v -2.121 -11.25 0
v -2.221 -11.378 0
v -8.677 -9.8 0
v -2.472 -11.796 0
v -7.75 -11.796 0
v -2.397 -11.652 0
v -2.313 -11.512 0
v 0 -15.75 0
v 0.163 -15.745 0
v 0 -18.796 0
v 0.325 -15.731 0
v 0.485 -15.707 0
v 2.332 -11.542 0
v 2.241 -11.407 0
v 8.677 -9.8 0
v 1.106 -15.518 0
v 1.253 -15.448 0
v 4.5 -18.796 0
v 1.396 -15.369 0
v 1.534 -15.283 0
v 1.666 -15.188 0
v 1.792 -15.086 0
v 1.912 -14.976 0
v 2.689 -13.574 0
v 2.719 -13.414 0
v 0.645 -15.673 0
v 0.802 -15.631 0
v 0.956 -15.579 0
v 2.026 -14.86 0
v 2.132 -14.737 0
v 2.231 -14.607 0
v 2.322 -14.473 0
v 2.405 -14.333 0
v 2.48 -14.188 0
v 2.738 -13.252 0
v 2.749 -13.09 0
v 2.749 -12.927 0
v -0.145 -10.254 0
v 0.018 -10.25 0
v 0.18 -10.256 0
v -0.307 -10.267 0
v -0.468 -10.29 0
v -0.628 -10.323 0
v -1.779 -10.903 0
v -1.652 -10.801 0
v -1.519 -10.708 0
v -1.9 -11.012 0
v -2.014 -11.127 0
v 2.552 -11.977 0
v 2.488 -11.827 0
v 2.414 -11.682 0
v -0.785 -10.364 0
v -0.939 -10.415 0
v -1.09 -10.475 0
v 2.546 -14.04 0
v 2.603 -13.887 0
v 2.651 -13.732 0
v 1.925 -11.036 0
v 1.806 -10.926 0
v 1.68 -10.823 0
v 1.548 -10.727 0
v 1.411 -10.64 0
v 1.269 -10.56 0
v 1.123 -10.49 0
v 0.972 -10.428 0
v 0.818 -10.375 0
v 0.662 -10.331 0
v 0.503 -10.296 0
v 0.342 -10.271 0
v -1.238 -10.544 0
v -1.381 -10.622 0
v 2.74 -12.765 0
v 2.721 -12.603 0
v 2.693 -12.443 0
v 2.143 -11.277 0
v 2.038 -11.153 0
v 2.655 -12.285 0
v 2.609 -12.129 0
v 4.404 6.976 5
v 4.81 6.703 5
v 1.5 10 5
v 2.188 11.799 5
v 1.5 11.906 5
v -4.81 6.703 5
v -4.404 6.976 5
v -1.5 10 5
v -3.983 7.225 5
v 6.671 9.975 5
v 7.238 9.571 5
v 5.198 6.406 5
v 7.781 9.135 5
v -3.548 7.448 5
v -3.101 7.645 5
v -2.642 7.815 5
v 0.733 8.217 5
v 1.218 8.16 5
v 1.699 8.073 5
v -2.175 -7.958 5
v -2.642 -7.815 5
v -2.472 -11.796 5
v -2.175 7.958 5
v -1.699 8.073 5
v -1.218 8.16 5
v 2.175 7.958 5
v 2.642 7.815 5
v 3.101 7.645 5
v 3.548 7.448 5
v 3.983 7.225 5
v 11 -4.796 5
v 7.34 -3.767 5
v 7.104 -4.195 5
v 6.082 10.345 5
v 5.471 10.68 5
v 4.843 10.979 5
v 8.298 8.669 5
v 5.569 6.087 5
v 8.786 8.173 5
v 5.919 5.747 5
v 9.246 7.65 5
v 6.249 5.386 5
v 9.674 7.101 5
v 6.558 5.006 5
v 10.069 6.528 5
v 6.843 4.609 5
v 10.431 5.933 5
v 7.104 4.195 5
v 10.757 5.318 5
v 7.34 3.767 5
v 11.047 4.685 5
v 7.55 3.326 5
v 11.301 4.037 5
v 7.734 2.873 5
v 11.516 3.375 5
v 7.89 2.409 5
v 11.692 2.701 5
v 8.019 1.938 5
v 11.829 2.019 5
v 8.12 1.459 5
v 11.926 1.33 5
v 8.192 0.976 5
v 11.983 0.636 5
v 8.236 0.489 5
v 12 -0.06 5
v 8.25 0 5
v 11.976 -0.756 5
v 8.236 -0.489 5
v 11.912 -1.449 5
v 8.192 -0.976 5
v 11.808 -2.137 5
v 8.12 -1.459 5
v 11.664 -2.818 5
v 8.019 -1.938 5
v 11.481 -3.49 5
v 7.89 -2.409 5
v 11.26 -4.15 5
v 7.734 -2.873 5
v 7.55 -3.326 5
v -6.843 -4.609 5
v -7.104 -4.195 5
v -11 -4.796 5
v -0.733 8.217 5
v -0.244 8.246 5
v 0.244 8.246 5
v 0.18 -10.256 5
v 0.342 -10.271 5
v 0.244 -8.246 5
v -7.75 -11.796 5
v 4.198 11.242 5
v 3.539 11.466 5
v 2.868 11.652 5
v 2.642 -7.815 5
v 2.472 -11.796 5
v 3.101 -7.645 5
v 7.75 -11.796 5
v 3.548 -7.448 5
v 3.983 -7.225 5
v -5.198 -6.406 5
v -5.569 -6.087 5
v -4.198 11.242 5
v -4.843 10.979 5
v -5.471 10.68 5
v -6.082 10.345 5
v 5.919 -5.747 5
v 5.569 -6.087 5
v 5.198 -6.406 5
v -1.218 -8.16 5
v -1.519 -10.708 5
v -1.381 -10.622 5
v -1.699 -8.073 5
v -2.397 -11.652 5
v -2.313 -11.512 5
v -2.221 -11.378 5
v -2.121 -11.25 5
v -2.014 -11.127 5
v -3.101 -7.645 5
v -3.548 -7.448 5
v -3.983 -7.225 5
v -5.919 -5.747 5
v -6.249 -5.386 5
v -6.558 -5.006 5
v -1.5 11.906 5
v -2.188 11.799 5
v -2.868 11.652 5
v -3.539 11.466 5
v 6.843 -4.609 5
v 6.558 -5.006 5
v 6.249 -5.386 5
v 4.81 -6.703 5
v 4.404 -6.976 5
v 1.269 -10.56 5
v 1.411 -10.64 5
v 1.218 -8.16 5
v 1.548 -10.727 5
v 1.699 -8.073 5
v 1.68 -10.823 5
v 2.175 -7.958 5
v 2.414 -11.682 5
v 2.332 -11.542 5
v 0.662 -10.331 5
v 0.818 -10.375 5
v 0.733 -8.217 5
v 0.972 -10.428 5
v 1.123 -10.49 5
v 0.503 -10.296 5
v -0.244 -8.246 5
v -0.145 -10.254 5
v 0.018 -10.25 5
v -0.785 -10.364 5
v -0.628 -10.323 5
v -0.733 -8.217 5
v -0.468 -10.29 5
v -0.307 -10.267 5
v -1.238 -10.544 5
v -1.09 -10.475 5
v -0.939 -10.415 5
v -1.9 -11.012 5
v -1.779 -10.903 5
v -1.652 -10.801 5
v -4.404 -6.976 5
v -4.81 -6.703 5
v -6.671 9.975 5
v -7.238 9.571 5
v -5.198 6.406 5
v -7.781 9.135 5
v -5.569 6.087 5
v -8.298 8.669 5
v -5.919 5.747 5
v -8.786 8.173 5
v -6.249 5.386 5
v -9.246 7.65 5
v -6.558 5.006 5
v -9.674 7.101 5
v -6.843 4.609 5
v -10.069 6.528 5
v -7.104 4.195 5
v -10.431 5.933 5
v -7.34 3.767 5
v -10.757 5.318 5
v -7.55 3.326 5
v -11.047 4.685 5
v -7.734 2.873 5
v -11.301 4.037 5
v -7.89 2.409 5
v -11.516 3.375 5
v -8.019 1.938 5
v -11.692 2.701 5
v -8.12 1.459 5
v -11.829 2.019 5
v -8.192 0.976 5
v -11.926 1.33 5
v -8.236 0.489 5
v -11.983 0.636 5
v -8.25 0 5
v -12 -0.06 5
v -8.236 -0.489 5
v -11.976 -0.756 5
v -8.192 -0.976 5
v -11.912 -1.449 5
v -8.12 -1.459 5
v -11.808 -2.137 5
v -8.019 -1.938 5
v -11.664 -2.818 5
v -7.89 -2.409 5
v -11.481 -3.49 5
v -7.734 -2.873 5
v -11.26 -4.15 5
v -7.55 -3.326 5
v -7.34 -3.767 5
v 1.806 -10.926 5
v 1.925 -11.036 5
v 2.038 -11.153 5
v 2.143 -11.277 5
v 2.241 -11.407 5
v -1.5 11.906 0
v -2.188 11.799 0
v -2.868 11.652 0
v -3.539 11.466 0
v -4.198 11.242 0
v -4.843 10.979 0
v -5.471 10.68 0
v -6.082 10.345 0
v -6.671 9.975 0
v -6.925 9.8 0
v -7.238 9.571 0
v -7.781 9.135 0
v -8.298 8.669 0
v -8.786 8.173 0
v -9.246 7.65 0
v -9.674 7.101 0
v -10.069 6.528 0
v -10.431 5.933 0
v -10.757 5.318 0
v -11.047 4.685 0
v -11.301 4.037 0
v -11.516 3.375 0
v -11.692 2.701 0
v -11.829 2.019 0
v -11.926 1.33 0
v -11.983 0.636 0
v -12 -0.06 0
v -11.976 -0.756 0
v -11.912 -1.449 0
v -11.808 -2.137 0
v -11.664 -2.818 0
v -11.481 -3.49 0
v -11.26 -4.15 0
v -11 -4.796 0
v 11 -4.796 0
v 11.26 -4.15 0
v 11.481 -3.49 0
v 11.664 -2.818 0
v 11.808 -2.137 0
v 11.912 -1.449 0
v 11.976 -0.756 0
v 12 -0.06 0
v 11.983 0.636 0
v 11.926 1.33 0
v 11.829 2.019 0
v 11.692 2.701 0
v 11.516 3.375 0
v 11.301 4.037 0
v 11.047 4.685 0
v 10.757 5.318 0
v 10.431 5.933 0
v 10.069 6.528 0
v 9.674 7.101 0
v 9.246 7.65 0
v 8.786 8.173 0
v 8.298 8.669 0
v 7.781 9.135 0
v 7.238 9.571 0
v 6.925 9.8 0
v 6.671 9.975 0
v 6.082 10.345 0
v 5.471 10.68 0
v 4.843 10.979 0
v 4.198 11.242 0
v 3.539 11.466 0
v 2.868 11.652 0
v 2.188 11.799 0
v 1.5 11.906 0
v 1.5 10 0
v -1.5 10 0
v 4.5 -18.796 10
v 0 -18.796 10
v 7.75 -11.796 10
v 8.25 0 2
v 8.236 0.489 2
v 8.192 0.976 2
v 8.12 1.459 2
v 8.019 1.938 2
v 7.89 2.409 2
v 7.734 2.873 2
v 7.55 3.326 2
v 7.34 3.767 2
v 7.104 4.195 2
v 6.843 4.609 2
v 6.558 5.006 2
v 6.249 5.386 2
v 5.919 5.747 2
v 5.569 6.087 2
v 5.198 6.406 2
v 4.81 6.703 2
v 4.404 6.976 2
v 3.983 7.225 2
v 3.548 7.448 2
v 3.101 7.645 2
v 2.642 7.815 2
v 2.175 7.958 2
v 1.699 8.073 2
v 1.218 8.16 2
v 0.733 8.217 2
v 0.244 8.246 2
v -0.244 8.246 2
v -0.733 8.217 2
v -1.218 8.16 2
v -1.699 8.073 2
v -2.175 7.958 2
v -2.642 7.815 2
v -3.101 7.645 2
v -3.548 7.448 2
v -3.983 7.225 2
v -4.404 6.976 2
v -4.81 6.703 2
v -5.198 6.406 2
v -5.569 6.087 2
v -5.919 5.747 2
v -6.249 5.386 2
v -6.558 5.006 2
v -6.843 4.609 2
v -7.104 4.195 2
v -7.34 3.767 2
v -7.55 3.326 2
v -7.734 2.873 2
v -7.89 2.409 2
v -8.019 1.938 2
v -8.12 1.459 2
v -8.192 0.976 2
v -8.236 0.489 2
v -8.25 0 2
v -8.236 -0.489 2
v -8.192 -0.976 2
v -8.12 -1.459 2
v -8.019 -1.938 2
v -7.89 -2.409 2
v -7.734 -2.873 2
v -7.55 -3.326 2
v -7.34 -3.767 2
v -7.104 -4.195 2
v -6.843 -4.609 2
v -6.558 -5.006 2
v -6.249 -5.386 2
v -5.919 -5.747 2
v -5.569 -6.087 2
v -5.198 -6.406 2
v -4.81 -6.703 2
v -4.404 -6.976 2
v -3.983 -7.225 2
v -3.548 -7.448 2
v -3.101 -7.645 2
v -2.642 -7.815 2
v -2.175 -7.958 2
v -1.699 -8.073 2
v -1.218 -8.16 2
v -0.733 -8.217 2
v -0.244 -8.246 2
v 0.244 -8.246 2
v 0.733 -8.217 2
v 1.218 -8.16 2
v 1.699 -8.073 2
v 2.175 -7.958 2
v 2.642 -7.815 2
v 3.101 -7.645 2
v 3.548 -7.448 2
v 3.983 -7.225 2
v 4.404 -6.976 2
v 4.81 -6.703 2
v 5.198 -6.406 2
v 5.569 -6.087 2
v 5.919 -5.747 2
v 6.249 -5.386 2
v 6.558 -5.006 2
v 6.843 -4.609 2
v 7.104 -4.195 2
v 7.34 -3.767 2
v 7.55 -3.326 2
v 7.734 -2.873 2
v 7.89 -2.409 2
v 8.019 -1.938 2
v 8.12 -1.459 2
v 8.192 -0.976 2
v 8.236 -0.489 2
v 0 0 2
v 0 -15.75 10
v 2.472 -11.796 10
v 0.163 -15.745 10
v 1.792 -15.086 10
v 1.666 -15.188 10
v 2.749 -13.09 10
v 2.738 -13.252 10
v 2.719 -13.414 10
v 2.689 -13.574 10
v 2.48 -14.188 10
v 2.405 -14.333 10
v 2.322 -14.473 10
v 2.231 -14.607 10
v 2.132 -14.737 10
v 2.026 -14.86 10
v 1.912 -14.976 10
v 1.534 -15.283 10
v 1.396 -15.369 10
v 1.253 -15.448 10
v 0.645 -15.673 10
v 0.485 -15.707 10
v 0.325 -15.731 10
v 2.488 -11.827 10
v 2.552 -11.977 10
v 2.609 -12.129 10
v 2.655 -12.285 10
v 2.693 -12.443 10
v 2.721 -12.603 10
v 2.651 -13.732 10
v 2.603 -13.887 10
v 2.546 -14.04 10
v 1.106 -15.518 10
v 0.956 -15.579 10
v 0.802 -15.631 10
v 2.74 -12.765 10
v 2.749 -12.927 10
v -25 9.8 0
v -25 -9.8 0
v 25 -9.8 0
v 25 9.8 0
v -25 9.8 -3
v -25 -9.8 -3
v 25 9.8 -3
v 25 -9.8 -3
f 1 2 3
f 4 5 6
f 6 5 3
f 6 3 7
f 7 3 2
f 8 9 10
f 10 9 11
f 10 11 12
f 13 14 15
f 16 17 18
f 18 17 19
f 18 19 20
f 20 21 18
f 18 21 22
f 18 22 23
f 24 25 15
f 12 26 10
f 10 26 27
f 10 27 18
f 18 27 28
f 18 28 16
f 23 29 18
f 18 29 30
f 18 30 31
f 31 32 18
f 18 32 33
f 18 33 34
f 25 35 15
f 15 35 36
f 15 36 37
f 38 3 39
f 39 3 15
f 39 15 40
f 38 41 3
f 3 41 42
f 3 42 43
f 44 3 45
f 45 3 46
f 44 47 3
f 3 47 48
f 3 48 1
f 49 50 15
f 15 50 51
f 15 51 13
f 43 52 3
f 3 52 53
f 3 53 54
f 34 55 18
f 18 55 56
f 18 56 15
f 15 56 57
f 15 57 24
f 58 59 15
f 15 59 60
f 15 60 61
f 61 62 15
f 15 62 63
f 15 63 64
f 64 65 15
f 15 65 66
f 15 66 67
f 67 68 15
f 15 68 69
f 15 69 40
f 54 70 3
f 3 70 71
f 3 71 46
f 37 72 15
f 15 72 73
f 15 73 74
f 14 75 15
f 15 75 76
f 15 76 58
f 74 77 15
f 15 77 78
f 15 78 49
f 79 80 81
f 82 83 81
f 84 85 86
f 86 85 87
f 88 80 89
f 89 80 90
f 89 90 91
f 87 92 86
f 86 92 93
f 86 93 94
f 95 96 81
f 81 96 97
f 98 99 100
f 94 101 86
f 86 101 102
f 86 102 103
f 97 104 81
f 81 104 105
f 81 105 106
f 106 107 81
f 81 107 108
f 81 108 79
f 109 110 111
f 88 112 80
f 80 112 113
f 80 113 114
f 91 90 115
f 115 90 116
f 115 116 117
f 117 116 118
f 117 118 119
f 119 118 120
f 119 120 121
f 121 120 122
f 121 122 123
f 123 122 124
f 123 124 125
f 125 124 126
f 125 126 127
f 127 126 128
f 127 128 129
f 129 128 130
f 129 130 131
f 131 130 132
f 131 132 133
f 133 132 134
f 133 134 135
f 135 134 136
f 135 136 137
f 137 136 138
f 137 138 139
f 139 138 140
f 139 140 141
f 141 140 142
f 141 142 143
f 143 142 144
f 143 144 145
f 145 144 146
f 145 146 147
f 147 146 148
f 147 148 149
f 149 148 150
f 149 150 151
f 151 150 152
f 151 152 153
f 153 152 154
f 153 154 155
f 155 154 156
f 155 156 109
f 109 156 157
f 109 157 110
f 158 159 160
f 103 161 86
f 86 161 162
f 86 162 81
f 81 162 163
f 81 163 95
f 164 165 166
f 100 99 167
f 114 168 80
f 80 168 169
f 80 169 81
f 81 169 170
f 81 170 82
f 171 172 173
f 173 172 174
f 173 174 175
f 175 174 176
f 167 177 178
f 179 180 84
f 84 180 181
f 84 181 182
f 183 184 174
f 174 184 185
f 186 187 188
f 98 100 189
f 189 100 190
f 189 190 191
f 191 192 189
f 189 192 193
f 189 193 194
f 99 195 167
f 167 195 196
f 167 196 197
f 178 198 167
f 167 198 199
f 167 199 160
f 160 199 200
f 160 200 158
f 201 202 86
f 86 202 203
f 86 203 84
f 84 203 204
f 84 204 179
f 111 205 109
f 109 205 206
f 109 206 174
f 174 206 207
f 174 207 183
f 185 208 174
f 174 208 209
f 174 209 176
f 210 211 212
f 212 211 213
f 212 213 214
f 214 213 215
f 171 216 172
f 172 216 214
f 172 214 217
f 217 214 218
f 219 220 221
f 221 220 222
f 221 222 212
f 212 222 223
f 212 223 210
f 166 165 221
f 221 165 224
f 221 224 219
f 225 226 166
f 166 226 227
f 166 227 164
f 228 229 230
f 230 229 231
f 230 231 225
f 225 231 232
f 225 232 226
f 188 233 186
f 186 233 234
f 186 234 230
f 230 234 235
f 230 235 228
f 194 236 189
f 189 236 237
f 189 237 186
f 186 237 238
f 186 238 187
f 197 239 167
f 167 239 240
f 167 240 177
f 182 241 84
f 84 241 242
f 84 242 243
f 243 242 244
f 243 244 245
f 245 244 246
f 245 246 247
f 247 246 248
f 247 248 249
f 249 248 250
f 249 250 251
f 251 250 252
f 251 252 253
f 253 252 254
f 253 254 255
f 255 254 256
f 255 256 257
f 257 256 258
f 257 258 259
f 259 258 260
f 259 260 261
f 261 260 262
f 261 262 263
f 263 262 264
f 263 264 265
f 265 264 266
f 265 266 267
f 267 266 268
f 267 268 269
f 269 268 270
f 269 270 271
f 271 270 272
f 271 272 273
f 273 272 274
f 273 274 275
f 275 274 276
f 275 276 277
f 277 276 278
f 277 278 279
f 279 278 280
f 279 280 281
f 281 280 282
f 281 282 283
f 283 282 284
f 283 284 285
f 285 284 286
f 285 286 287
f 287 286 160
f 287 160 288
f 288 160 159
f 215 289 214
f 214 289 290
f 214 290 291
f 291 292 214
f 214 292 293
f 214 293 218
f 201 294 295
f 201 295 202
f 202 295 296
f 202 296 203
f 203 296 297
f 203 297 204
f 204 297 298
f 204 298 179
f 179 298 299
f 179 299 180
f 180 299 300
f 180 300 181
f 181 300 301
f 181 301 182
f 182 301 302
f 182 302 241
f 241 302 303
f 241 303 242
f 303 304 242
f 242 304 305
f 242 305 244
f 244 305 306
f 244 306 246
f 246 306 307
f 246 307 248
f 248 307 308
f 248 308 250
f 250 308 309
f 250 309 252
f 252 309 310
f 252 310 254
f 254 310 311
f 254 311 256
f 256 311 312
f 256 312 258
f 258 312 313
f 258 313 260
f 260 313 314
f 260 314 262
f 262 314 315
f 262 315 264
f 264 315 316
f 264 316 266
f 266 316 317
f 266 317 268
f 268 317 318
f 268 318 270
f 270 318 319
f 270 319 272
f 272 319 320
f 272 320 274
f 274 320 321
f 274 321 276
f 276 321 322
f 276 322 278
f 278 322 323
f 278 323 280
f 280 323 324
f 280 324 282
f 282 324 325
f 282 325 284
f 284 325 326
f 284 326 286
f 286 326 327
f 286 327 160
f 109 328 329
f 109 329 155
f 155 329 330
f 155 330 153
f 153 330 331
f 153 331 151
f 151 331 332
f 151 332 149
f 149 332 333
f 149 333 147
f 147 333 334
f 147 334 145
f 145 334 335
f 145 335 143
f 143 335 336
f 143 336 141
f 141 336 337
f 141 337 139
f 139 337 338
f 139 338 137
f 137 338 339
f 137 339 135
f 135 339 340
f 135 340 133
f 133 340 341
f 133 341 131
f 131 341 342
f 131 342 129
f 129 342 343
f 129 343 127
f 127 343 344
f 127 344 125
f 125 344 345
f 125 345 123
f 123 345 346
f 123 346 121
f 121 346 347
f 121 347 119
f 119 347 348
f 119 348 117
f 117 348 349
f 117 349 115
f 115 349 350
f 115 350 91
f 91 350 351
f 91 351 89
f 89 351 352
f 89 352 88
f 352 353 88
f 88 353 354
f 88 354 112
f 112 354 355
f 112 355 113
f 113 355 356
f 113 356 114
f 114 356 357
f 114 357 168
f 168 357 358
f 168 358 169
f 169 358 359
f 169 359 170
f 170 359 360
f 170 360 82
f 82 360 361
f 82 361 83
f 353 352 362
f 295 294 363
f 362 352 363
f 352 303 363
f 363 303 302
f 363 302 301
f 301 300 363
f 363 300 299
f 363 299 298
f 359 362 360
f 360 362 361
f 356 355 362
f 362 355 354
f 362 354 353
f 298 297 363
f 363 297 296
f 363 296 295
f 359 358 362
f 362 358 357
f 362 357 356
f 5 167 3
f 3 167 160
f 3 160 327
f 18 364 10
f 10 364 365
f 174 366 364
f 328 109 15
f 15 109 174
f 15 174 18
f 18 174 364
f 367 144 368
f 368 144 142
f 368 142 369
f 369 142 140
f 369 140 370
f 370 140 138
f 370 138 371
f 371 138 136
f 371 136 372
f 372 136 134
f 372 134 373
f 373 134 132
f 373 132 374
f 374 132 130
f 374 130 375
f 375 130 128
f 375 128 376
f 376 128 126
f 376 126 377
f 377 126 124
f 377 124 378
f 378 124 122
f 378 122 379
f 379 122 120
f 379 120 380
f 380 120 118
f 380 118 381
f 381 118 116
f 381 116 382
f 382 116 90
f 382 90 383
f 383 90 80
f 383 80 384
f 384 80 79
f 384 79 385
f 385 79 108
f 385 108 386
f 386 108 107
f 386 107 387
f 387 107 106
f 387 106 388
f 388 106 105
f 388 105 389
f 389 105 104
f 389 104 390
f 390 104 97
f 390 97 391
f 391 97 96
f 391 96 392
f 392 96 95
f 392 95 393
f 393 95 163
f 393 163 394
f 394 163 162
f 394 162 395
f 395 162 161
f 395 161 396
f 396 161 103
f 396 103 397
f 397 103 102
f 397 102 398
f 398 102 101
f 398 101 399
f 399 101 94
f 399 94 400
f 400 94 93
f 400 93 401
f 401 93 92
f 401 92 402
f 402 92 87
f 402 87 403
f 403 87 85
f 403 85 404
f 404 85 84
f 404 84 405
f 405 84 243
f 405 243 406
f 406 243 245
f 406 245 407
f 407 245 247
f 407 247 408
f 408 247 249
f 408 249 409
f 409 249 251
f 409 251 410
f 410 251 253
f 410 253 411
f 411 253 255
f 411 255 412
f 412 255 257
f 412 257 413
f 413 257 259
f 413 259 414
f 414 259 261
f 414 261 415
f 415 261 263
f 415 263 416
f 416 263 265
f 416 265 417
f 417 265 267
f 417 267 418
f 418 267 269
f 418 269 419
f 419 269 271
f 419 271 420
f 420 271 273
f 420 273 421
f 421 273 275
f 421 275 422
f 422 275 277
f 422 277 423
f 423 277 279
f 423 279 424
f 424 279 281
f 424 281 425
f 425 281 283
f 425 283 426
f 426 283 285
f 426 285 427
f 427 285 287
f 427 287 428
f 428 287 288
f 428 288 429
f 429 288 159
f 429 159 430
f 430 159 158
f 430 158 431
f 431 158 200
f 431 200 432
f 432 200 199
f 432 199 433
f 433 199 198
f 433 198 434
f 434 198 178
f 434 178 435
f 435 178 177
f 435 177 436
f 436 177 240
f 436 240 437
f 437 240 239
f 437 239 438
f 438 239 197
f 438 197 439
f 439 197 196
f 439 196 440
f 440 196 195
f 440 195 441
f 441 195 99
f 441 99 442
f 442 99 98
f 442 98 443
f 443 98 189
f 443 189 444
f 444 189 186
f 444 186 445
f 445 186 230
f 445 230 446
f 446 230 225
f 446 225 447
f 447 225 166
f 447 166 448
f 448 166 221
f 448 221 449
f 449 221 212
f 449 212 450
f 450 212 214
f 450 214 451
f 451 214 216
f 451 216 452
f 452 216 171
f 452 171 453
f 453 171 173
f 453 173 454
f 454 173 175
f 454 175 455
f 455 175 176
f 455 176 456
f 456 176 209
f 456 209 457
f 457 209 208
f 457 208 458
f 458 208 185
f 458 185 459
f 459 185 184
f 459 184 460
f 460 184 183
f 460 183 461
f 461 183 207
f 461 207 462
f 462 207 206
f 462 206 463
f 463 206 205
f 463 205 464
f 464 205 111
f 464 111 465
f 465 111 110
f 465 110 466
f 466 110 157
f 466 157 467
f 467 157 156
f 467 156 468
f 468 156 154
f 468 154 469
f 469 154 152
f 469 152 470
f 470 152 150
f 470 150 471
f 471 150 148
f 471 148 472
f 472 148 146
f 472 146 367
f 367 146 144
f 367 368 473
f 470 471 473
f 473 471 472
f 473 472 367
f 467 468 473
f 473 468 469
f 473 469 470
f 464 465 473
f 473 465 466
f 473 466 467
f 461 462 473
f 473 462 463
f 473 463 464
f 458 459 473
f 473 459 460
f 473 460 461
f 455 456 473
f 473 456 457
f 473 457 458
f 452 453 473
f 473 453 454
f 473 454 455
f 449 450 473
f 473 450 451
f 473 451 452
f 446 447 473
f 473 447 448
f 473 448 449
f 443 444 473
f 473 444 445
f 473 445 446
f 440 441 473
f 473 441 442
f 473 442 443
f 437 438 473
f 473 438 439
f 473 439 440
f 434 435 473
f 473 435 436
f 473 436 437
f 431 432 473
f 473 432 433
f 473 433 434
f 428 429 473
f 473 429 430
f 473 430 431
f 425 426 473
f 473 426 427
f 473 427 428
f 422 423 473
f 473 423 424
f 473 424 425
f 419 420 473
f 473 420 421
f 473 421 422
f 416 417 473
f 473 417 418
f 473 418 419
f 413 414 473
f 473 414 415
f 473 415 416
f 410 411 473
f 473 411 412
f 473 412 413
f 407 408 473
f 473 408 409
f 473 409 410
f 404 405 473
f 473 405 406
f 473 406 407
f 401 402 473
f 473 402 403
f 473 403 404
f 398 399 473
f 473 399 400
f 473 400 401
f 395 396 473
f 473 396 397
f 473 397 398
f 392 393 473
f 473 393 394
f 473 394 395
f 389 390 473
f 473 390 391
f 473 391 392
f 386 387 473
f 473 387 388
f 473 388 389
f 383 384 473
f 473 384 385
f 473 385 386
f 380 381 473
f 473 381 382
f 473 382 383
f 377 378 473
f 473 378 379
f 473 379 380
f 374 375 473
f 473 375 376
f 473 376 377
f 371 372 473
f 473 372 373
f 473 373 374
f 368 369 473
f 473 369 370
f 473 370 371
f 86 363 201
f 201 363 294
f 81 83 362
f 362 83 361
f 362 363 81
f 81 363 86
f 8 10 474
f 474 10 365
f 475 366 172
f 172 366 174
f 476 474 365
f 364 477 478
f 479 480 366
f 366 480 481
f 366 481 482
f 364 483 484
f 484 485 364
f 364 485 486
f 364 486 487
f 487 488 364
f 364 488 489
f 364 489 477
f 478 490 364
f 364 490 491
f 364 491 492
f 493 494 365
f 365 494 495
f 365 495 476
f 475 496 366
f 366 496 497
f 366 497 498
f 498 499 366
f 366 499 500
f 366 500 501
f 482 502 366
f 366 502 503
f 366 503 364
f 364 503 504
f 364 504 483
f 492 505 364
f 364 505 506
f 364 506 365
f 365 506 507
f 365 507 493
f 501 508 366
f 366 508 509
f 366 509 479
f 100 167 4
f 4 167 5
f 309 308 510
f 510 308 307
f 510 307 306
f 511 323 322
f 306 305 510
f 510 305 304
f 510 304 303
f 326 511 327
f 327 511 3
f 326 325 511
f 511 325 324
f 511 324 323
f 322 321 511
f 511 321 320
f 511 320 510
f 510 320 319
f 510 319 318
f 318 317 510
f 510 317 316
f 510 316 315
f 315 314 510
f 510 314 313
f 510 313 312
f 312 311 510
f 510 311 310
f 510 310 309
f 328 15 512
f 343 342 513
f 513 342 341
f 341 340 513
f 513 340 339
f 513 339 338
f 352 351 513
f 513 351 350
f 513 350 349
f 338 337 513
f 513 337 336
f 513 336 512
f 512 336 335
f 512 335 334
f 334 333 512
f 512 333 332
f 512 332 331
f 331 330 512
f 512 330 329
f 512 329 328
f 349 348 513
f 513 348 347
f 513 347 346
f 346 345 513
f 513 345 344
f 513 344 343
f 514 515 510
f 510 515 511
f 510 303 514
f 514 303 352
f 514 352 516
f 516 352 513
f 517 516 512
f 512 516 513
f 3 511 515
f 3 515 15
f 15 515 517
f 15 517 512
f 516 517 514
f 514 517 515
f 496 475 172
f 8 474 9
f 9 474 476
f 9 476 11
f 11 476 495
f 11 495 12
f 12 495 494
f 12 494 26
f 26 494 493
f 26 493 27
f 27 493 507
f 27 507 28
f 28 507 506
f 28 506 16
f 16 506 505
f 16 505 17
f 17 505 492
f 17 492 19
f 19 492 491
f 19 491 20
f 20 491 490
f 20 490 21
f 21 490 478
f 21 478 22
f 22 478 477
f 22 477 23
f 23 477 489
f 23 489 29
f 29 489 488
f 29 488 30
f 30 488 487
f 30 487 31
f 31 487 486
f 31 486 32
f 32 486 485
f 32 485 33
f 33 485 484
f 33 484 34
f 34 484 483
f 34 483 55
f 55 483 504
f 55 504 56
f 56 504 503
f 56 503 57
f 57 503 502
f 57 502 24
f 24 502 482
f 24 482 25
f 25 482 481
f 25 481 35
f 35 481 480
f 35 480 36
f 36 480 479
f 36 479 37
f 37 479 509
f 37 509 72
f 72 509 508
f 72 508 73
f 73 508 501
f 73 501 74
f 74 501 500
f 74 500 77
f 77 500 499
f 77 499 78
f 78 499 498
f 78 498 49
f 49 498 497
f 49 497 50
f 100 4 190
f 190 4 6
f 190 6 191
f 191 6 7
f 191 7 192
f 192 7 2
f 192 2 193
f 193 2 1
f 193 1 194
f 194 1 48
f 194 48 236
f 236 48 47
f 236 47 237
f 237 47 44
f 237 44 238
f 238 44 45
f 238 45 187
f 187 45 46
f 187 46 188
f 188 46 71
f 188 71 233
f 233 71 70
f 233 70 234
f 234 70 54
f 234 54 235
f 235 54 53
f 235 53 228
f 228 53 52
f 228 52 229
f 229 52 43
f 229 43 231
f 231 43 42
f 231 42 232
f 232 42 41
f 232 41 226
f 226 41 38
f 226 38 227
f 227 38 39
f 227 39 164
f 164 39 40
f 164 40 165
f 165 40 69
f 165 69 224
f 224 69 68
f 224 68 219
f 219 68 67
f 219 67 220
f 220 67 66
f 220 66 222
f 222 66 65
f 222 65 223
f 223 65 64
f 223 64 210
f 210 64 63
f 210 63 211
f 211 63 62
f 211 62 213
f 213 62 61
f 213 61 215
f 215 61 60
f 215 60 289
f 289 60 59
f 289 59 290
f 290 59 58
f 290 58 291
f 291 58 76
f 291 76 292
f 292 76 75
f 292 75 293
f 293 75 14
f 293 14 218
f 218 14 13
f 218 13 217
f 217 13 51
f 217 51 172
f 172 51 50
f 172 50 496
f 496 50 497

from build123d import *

# Parameters (mm, degrees)
BOSS_EXTRU_1_DEPTH           = 5
ESQUISSE2_R                  = 8.25
ENL_V_MAT_EXTRU_1_DEPTH      = 3
ESQUISSE4_W                  = 3
ESQUISSE4_H                  = 5
ENL_V_MAT_EXTRU_2_DEPTH      = 2
BOSS_EXTRU_2_DEPTH           = 5
ENL_V_MAT_EXTRU_4_DEPTH      = 5
ESQUISSE8_W                  = 50
ESQUISSE8_H                  = 19.6
BOSS_EXTRU_3_DEPTH           = 3
ESQUISSE10_R                 = 2.75
ENL_V_MAT_EXTRU_5_DEPTH      = 6
ENL_V_MAT_EXTRU_5_DEPTH_BACK = 9


with BuildPart() as part:
    # Esquisse1 → Boss.-Extru.1 (new body)
    with BuildSketch(Plane.XY):
        with BuildLine():
            Line((-11, -4.795831523), (-4.5, -18.795831523))
            Line((-4.5, -18.795831523), (4.5, -18.795831523))
            Line((4.5, -18.795831523), (11, -4.795831523))
            ThreePointArc((11, -4.795831523), (0, 12), (-11, -4.795831523))
        make_face()
    extrude(amount=BOSS_EXTRU_1_DEPTH)

    # Esquisse2 → Enlèv. mat.-Extru.1 (cut)
    with BuildSketch(Plane.XY.offset(5)):
        Circle(ESQUISSE2_R)
    extrude(amount=-ENL_V_MAT_EXTRU_1_DEPTH, mode=Mode.SUBTRACT)

    # Esquisse4 → Enlèv. mat.-Extru.2 (cut)
    with BuildSketch(Plane(origin=(0, 12, 0), x_dir=(1, 0, 0), z_dir=(0, 1, 0))):
        with Locations((0, -2.5)):
            Rectangle(ESQUISSE4_W, ESQUISSE4_H)
    extrude(amount=-ENL_V_MAT_EXTRU_2_DEPTH, mode=Mode.SUBTRACT)

    # Esquisse6 → Boss.-Extru.2 (add)
    with BuildSketch(Plane.XY.offset(5)):
        Polygon((0, -18.795831523), (4.5, -18.795831523), (7.75, -11.795831523), (0, -11.795831523), align=None)
    extrude(amount=BOSS_EXTRU_2_DEPTH)

    # Esquisse7 → Enlèv. mat.-Extru.4 (cut)
    with BuildSketch(Plane.XY.offset(5)):
        Polygon((0, -18.795831523), (0, -11.795831523), (-7.75, -11.795831523), (-4.5, -18.795831523), align=None)
    extrude(amount=-ENL_V_MAT_EXTRU_4_DEPTH, mode=Mode.SUBTRACT)

    # Esquisse8 → Boss.-Extru.3 (add)
    with BuildSketch(Plane(origin=(0, 0, 0), x_dir=(-1, 0, 0), z_dir=(0, 0, -1))):
        Rectangle(ESQUISSE8_W, ESQUISSE8_H)
    extrude(amount=BOSS_EXTRU_3_DEPTH)

    # Esquisse10 → Enlèv. mat.-Extru.5 (cut, two sides)
    with BuildSketch(Plane.XY.offset(5)) as enl_v_mat_extru_5_sk:
        with Locations((0, -13)):
            Circle(ESQUISSE10_R)
    extrude(amount=ENL_V_MAT_EXTRU_5_DEPTH, mode=Mode.SUBTRACT)
    extrude(enl_v_mat_extru_5_sk.sketch, amount=-ENL_V_MAT_EXTRU_5_DEPTH_BACK, mode=Mode.SUBTRACT)


solid = part.part
